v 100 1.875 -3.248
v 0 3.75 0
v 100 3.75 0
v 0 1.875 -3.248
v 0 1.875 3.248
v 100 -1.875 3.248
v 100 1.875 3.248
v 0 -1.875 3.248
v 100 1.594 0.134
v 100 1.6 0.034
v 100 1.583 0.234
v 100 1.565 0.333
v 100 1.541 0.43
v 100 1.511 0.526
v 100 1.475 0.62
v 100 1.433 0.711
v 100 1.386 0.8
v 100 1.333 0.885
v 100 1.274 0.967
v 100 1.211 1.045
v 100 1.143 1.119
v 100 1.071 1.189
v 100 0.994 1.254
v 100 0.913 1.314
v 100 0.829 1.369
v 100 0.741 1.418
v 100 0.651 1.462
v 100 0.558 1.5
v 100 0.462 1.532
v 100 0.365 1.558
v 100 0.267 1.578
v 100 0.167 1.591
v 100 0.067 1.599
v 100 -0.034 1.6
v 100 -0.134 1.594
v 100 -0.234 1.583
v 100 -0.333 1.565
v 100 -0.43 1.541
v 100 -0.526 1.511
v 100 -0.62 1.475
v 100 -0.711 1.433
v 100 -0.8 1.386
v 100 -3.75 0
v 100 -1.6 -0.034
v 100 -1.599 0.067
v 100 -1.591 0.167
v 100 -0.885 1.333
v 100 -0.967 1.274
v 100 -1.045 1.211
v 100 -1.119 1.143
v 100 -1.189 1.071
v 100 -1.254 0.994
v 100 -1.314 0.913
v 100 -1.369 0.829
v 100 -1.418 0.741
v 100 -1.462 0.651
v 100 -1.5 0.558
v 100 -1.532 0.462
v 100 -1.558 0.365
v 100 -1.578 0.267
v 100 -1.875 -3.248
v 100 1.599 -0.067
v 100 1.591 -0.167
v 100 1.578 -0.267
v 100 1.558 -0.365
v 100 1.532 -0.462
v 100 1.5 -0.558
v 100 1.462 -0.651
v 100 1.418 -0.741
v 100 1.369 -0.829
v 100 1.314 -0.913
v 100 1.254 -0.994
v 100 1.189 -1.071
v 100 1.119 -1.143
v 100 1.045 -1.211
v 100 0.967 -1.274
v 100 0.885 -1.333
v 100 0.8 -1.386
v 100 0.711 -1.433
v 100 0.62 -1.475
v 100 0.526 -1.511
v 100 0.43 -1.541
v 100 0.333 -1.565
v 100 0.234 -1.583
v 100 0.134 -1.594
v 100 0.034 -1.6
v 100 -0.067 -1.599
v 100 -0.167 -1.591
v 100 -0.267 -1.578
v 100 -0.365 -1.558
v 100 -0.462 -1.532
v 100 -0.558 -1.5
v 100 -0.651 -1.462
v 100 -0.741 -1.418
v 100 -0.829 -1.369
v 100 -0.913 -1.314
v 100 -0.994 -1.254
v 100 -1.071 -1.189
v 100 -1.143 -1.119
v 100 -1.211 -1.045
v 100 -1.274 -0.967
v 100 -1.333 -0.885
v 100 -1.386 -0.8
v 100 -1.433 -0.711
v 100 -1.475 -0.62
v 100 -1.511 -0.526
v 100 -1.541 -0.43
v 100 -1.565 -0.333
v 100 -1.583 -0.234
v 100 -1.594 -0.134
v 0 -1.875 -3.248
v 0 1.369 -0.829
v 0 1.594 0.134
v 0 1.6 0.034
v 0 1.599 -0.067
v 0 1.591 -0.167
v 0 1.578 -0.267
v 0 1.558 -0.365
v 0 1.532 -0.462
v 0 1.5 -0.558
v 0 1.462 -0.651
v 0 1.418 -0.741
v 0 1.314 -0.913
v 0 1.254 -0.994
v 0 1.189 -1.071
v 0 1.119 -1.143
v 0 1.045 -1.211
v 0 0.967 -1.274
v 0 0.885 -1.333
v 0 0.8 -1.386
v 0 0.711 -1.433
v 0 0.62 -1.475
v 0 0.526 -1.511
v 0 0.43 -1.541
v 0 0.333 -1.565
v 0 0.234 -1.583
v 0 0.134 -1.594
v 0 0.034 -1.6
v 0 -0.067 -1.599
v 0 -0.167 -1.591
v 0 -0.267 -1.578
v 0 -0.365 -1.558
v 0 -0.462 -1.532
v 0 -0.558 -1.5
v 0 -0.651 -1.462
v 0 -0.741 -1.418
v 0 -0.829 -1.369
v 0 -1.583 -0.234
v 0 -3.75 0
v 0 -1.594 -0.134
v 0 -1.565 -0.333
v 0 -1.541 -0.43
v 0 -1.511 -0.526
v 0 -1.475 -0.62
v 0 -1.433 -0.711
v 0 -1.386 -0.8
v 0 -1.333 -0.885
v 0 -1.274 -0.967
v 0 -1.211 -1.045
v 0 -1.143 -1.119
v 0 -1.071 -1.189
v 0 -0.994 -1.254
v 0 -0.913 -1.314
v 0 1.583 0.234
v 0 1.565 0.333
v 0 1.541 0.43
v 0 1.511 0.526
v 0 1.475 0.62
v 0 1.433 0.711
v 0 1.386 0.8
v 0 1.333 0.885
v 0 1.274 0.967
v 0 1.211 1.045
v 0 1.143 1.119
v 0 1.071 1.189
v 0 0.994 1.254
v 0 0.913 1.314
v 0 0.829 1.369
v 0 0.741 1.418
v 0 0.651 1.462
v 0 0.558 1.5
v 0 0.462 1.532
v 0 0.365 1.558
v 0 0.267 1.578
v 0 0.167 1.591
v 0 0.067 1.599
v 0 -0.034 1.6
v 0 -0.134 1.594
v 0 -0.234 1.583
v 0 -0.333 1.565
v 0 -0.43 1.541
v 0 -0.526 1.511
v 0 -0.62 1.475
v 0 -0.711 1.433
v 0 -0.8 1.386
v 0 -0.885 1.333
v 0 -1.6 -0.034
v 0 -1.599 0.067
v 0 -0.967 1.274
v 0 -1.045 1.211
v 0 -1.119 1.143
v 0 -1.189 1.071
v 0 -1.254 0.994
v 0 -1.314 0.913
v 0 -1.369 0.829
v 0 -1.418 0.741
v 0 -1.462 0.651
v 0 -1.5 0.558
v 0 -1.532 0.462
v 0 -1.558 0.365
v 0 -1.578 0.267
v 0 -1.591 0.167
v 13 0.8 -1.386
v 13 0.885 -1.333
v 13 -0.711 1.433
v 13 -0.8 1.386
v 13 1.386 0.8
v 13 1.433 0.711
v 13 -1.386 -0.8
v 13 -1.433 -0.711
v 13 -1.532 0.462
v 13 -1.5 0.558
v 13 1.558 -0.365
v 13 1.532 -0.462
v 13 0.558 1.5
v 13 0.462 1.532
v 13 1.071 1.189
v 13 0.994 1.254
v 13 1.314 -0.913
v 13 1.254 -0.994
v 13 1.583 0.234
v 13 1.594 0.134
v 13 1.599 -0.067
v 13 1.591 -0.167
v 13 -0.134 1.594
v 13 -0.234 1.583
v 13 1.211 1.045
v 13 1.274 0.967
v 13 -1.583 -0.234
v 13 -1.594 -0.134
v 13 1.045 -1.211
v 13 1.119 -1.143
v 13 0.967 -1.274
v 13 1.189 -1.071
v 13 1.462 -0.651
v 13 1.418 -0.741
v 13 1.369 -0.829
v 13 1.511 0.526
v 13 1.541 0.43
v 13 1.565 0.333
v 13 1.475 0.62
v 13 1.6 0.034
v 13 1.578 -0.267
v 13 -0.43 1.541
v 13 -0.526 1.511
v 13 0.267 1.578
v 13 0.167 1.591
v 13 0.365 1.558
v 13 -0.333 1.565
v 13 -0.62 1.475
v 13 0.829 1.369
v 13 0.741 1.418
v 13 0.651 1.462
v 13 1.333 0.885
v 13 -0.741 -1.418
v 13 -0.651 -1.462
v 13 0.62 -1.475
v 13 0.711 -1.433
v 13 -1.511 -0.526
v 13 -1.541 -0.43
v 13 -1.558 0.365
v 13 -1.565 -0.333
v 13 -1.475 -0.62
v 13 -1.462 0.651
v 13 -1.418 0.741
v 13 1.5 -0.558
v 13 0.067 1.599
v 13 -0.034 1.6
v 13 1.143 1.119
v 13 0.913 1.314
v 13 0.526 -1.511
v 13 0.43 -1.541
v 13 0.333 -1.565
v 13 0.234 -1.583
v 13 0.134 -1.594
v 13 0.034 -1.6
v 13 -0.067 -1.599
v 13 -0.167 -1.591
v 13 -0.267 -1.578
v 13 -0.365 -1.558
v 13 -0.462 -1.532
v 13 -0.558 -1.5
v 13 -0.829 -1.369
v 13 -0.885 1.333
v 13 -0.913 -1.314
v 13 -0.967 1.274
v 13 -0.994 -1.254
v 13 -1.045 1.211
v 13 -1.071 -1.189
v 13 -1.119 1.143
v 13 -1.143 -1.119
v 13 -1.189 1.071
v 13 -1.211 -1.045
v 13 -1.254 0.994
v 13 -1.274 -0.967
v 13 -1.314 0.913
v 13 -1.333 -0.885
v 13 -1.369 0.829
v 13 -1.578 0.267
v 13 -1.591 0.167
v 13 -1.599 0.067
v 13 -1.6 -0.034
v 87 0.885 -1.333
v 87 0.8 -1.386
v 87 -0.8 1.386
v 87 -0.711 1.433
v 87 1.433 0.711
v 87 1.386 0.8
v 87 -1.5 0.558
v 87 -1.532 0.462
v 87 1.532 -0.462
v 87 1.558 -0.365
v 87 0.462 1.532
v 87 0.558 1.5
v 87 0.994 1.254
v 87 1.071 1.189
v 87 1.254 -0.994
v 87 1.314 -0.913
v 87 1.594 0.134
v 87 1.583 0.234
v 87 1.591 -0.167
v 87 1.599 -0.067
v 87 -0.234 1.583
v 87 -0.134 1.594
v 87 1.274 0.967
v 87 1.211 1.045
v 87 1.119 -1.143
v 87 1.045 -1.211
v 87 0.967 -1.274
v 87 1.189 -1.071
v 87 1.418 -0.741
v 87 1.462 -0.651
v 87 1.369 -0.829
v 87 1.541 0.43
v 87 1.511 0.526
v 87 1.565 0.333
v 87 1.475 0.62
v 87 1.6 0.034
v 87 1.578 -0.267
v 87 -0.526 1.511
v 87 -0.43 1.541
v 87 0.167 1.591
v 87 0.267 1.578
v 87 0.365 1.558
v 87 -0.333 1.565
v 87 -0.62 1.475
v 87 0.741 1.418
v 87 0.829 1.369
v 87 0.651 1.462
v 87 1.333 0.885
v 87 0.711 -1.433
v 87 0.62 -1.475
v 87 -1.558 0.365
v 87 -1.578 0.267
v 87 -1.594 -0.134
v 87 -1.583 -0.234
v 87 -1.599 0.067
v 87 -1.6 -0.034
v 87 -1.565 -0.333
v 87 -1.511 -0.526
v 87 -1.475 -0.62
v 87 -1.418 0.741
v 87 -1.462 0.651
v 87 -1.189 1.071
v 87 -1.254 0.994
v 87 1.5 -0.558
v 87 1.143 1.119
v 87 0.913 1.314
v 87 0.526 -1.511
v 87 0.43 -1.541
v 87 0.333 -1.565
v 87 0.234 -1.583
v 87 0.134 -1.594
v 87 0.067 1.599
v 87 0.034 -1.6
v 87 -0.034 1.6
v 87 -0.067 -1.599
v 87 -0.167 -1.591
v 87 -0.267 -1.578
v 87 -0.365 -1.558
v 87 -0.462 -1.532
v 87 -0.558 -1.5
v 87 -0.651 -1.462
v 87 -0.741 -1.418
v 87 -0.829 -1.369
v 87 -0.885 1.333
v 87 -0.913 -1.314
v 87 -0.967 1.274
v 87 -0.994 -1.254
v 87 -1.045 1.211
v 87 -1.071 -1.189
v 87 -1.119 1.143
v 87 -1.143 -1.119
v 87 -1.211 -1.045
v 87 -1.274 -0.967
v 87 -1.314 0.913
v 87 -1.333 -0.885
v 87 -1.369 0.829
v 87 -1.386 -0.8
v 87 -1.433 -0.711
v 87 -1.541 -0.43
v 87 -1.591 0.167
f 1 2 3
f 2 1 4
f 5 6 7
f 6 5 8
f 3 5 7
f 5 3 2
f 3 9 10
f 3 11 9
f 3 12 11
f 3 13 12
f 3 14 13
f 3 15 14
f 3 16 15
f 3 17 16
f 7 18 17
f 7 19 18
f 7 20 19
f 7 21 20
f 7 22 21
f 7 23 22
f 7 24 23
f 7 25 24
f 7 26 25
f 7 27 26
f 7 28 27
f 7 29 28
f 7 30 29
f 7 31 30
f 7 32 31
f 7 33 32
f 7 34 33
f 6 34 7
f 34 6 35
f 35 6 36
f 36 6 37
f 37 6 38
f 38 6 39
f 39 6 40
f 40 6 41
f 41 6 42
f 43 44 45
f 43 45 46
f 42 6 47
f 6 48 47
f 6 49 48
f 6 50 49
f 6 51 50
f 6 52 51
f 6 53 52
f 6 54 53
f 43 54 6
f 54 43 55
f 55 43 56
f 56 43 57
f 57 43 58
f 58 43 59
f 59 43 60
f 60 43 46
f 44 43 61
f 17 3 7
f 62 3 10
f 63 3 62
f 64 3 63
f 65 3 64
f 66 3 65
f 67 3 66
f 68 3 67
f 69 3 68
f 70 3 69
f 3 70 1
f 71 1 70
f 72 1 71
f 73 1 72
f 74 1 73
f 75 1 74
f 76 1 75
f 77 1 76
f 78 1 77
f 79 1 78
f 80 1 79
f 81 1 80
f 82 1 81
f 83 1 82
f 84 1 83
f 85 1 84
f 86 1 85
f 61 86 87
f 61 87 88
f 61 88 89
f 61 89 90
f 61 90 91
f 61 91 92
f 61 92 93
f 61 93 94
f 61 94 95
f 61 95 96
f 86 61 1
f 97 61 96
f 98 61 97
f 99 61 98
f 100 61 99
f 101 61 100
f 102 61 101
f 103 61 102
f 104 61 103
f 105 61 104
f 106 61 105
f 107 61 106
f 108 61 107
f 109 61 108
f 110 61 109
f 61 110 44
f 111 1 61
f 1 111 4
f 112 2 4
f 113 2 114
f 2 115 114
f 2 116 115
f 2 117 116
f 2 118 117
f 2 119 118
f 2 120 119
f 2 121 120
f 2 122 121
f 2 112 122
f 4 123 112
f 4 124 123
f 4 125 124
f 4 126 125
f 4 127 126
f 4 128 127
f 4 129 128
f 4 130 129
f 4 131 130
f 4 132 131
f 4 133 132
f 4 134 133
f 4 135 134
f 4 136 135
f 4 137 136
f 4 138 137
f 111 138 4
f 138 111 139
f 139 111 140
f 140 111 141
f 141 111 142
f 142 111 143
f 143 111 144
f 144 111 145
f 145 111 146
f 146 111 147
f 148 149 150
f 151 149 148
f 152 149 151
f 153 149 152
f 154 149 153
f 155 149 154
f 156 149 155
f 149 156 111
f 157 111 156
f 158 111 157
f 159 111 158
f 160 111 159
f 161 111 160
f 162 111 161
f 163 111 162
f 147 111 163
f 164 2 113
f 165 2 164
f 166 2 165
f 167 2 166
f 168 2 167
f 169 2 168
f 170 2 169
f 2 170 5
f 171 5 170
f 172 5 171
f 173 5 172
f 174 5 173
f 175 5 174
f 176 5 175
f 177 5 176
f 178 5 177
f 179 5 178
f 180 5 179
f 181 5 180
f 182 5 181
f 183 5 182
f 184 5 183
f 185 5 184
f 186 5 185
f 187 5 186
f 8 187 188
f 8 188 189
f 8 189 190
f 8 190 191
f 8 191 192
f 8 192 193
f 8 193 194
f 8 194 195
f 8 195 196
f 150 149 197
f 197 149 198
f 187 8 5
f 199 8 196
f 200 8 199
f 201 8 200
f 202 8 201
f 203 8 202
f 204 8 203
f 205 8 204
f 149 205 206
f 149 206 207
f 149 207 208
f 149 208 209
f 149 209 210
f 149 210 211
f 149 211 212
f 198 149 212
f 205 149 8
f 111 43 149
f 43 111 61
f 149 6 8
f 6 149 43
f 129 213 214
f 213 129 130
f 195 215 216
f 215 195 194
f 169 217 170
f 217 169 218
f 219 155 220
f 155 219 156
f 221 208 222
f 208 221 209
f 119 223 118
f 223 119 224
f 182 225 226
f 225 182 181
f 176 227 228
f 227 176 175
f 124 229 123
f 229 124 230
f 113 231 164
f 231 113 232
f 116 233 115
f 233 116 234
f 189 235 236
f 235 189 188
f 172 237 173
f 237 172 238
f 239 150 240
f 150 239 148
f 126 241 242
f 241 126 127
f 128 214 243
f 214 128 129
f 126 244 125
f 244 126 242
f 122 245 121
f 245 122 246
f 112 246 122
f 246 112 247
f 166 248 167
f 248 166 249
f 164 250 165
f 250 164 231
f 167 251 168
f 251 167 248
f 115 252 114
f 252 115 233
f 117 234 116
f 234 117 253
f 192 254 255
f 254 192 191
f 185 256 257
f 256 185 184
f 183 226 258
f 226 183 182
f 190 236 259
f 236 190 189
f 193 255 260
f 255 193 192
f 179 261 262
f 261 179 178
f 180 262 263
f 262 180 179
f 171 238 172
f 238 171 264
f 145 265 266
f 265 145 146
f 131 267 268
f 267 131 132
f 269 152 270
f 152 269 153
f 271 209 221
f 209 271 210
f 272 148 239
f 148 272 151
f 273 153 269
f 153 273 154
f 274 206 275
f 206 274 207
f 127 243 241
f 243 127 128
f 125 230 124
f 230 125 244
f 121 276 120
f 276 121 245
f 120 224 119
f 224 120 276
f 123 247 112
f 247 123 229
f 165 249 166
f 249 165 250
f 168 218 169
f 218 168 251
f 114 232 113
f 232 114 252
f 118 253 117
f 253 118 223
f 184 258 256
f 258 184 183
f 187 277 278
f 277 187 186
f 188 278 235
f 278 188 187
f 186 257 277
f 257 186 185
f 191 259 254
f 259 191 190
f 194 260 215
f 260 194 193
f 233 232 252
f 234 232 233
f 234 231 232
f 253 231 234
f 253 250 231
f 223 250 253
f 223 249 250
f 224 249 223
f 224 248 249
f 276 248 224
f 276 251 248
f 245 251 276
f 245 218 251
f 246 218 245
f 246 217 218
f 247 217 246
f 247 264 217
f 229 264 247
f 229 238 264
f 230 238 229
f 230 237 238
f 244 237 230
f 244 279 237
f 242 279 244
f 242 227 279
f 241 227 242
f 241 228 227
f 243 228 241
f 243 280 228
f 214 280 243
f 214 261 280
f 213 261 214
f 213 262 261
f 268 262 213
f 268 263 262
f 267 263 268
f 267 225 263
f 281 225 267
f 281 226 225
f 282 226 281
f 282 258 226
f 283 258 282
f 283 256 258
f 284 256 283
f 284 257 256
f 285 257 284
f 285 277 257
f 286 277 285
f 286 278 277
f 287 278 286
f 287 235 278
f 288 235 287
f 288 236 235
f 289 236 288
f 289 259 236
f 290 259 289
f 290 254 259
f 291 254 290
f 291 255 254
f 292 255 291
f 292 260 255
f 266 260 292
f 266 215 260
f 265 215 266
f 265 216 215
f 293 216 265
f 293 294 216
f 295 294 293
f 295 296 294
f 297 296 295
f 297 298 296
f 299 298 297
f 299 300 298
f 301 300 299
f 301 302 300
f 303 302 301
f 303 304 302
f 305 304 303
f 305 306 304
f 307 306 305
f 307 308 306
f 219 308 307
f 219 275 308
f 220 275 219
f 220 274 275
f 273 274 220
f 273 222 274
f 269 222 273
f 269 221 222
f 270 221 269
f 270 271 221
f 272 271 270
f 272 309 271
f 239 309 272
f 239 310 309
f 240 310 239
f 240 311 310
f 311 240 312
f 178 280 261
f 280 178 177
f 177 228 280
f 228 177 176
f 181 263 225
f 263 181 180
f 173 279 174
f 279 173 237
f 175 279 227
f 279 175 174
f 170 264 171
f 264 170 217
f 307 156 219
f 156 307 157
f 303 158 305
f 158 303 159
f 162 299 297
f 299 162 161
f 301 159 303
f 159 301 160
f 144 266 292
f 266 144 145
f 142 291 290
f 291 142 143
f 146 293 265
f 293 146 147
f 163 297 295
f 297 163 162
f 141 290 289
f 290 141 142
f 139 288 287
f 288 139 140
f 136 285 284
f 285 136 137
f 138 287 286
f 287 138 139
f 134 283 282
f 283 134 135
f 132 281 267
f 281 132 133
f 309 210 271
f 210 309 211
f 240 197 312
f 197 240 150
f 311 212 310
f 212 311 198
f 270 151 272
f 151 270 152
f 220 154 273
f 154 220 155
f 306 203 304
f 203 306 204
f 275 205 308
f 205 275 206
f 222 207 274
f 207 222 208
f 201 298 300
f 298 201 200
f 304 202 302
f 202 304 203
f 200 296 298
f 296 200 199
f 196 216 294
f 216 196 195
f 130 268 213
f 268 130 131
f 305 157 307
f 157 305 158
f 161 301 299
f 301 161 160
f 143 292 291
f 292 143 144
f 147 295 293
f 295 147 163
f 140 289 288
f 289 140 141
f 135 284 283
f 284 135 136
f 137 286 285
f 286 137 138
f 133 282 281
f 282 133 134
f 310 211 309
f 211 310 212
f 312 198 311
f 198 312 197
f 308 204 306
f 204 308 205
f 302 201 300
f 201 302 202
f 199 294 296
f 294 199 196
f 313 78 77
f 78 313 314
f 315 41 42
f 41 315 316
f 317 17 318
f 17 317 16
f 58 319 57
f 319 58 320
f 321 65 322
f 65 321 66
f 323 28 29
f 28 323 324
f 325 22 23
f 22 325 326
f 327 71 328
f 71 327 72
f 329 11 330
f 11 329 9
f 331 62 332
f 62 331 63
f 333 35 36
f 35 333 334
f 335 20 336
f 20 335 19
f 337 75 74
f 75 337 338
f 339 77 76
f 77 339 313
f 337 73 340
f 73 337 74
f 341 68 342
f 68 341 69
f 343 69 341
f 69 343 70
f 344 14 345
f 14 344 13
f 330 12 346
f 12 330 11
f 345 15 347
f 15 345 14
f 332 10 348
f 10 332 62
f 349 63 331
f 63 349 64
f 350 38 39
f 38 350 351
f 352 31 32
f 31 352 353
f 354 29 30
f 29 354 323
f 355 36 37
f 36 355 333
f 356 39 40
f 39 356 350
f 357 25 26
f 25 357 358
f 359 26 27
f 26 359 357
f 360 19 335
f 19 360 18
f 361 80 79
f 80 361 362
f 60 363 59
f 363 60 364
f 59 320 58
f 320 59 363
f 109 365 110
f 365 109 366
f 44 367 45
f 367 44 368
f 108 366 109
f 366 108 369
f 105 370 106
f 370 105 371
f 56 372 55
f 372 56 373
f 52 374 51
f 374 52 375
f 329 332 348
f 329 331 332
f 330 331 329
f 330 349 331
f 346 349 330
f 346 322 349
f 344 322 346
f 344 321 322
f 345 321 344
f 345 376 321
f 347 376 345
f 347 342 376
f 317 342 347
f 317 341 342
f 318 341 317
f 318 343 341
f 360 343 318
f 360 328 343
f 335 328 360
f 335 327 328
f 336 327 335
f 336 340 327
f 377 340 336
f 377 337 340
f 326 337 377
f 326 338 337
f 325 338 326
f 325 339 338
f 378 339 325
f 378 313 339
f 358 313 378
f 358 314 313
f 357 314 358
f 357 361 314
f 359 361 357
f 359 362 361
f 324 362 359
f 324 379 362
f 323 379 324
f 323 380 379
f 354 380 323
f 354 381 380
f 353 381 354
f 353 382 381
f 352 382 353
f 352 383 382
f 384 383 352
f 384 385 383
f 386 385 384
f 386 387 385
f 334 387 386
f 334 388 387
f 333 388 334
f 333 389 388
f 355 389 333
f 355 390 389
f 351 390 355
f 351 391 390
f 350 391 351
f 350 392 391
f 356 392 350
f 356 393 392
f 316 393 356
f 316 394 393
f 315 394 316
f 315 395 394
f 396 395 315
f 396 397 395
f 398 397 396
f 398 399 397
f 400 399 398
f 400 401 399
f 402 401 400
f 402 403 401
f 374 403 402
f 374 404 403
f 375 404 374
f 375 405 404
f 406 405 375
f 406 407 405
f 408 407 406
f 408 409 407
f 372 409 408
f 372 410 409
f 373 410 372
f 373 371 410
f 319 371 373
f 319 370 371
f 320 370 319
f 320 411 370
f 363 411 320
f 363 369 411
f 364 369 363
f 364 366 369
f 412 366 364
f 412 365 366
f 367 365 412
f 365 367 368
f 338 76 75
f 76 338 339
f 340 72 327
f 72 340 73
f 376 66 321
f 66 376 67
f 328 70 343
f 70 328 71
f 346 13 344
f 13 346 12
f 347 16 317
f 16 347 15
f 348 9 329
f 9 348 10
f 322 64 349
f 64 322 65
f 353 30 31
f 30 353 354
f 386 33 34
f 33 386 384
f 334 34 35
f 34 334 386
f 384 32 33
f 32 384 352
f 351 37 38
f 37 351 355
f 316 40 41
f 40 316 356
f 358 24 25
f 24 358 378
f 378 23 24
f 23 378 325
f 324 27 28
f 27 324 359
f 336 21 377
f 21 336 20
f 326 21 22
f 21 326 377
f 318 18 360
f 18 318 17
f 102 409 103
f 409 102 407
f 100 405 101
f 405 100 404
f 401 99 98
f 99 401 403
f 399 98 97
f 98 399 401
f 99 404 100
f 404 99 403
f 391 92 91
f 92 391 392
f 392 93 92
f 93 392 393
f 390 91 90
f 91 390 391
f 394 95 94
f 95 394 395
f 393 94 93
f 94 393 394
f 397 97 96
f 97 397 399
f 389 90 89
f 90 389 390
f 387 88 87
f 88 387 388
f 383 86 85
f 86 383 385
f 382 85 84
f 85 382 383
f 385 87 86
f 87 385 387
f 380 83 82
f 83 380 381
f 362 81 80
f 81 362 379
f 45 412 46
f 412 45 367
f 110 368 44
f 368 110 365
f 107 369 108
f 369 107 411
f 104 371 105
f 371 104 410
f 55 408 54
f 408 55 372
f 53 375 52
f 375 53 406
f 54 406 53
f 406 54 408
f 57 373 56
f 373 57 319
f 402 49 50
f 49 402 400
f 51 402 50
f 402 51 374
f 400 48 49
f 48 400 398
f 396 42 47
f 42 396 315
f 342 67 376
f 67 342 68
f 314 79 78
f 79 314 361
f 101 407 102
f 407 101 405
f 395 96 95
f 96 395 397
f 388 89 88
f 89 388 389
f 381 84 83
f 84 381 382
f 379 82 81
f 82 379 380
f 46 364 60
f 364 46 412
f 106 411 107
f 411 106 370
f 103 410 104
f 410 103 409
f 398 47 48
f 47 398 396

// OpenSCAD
rotate([0,90,0]) {
rotate([0,00,30]) {
difference(){
cylinder($fn = 6, h = 100, r1 = 3.75, r2 = 3.75, center = false);
# translate([0,0,-1])
{
 cylinder($fn = 100, h = 14, r1 = 1.6, r2 = 1.6, center = false);
}
# translate([0,0,100-13])
{
 cylinder($fn = 100, h = 14, r1 = 1.6, r2 = 1.6, center = false);
}
}
}
}
